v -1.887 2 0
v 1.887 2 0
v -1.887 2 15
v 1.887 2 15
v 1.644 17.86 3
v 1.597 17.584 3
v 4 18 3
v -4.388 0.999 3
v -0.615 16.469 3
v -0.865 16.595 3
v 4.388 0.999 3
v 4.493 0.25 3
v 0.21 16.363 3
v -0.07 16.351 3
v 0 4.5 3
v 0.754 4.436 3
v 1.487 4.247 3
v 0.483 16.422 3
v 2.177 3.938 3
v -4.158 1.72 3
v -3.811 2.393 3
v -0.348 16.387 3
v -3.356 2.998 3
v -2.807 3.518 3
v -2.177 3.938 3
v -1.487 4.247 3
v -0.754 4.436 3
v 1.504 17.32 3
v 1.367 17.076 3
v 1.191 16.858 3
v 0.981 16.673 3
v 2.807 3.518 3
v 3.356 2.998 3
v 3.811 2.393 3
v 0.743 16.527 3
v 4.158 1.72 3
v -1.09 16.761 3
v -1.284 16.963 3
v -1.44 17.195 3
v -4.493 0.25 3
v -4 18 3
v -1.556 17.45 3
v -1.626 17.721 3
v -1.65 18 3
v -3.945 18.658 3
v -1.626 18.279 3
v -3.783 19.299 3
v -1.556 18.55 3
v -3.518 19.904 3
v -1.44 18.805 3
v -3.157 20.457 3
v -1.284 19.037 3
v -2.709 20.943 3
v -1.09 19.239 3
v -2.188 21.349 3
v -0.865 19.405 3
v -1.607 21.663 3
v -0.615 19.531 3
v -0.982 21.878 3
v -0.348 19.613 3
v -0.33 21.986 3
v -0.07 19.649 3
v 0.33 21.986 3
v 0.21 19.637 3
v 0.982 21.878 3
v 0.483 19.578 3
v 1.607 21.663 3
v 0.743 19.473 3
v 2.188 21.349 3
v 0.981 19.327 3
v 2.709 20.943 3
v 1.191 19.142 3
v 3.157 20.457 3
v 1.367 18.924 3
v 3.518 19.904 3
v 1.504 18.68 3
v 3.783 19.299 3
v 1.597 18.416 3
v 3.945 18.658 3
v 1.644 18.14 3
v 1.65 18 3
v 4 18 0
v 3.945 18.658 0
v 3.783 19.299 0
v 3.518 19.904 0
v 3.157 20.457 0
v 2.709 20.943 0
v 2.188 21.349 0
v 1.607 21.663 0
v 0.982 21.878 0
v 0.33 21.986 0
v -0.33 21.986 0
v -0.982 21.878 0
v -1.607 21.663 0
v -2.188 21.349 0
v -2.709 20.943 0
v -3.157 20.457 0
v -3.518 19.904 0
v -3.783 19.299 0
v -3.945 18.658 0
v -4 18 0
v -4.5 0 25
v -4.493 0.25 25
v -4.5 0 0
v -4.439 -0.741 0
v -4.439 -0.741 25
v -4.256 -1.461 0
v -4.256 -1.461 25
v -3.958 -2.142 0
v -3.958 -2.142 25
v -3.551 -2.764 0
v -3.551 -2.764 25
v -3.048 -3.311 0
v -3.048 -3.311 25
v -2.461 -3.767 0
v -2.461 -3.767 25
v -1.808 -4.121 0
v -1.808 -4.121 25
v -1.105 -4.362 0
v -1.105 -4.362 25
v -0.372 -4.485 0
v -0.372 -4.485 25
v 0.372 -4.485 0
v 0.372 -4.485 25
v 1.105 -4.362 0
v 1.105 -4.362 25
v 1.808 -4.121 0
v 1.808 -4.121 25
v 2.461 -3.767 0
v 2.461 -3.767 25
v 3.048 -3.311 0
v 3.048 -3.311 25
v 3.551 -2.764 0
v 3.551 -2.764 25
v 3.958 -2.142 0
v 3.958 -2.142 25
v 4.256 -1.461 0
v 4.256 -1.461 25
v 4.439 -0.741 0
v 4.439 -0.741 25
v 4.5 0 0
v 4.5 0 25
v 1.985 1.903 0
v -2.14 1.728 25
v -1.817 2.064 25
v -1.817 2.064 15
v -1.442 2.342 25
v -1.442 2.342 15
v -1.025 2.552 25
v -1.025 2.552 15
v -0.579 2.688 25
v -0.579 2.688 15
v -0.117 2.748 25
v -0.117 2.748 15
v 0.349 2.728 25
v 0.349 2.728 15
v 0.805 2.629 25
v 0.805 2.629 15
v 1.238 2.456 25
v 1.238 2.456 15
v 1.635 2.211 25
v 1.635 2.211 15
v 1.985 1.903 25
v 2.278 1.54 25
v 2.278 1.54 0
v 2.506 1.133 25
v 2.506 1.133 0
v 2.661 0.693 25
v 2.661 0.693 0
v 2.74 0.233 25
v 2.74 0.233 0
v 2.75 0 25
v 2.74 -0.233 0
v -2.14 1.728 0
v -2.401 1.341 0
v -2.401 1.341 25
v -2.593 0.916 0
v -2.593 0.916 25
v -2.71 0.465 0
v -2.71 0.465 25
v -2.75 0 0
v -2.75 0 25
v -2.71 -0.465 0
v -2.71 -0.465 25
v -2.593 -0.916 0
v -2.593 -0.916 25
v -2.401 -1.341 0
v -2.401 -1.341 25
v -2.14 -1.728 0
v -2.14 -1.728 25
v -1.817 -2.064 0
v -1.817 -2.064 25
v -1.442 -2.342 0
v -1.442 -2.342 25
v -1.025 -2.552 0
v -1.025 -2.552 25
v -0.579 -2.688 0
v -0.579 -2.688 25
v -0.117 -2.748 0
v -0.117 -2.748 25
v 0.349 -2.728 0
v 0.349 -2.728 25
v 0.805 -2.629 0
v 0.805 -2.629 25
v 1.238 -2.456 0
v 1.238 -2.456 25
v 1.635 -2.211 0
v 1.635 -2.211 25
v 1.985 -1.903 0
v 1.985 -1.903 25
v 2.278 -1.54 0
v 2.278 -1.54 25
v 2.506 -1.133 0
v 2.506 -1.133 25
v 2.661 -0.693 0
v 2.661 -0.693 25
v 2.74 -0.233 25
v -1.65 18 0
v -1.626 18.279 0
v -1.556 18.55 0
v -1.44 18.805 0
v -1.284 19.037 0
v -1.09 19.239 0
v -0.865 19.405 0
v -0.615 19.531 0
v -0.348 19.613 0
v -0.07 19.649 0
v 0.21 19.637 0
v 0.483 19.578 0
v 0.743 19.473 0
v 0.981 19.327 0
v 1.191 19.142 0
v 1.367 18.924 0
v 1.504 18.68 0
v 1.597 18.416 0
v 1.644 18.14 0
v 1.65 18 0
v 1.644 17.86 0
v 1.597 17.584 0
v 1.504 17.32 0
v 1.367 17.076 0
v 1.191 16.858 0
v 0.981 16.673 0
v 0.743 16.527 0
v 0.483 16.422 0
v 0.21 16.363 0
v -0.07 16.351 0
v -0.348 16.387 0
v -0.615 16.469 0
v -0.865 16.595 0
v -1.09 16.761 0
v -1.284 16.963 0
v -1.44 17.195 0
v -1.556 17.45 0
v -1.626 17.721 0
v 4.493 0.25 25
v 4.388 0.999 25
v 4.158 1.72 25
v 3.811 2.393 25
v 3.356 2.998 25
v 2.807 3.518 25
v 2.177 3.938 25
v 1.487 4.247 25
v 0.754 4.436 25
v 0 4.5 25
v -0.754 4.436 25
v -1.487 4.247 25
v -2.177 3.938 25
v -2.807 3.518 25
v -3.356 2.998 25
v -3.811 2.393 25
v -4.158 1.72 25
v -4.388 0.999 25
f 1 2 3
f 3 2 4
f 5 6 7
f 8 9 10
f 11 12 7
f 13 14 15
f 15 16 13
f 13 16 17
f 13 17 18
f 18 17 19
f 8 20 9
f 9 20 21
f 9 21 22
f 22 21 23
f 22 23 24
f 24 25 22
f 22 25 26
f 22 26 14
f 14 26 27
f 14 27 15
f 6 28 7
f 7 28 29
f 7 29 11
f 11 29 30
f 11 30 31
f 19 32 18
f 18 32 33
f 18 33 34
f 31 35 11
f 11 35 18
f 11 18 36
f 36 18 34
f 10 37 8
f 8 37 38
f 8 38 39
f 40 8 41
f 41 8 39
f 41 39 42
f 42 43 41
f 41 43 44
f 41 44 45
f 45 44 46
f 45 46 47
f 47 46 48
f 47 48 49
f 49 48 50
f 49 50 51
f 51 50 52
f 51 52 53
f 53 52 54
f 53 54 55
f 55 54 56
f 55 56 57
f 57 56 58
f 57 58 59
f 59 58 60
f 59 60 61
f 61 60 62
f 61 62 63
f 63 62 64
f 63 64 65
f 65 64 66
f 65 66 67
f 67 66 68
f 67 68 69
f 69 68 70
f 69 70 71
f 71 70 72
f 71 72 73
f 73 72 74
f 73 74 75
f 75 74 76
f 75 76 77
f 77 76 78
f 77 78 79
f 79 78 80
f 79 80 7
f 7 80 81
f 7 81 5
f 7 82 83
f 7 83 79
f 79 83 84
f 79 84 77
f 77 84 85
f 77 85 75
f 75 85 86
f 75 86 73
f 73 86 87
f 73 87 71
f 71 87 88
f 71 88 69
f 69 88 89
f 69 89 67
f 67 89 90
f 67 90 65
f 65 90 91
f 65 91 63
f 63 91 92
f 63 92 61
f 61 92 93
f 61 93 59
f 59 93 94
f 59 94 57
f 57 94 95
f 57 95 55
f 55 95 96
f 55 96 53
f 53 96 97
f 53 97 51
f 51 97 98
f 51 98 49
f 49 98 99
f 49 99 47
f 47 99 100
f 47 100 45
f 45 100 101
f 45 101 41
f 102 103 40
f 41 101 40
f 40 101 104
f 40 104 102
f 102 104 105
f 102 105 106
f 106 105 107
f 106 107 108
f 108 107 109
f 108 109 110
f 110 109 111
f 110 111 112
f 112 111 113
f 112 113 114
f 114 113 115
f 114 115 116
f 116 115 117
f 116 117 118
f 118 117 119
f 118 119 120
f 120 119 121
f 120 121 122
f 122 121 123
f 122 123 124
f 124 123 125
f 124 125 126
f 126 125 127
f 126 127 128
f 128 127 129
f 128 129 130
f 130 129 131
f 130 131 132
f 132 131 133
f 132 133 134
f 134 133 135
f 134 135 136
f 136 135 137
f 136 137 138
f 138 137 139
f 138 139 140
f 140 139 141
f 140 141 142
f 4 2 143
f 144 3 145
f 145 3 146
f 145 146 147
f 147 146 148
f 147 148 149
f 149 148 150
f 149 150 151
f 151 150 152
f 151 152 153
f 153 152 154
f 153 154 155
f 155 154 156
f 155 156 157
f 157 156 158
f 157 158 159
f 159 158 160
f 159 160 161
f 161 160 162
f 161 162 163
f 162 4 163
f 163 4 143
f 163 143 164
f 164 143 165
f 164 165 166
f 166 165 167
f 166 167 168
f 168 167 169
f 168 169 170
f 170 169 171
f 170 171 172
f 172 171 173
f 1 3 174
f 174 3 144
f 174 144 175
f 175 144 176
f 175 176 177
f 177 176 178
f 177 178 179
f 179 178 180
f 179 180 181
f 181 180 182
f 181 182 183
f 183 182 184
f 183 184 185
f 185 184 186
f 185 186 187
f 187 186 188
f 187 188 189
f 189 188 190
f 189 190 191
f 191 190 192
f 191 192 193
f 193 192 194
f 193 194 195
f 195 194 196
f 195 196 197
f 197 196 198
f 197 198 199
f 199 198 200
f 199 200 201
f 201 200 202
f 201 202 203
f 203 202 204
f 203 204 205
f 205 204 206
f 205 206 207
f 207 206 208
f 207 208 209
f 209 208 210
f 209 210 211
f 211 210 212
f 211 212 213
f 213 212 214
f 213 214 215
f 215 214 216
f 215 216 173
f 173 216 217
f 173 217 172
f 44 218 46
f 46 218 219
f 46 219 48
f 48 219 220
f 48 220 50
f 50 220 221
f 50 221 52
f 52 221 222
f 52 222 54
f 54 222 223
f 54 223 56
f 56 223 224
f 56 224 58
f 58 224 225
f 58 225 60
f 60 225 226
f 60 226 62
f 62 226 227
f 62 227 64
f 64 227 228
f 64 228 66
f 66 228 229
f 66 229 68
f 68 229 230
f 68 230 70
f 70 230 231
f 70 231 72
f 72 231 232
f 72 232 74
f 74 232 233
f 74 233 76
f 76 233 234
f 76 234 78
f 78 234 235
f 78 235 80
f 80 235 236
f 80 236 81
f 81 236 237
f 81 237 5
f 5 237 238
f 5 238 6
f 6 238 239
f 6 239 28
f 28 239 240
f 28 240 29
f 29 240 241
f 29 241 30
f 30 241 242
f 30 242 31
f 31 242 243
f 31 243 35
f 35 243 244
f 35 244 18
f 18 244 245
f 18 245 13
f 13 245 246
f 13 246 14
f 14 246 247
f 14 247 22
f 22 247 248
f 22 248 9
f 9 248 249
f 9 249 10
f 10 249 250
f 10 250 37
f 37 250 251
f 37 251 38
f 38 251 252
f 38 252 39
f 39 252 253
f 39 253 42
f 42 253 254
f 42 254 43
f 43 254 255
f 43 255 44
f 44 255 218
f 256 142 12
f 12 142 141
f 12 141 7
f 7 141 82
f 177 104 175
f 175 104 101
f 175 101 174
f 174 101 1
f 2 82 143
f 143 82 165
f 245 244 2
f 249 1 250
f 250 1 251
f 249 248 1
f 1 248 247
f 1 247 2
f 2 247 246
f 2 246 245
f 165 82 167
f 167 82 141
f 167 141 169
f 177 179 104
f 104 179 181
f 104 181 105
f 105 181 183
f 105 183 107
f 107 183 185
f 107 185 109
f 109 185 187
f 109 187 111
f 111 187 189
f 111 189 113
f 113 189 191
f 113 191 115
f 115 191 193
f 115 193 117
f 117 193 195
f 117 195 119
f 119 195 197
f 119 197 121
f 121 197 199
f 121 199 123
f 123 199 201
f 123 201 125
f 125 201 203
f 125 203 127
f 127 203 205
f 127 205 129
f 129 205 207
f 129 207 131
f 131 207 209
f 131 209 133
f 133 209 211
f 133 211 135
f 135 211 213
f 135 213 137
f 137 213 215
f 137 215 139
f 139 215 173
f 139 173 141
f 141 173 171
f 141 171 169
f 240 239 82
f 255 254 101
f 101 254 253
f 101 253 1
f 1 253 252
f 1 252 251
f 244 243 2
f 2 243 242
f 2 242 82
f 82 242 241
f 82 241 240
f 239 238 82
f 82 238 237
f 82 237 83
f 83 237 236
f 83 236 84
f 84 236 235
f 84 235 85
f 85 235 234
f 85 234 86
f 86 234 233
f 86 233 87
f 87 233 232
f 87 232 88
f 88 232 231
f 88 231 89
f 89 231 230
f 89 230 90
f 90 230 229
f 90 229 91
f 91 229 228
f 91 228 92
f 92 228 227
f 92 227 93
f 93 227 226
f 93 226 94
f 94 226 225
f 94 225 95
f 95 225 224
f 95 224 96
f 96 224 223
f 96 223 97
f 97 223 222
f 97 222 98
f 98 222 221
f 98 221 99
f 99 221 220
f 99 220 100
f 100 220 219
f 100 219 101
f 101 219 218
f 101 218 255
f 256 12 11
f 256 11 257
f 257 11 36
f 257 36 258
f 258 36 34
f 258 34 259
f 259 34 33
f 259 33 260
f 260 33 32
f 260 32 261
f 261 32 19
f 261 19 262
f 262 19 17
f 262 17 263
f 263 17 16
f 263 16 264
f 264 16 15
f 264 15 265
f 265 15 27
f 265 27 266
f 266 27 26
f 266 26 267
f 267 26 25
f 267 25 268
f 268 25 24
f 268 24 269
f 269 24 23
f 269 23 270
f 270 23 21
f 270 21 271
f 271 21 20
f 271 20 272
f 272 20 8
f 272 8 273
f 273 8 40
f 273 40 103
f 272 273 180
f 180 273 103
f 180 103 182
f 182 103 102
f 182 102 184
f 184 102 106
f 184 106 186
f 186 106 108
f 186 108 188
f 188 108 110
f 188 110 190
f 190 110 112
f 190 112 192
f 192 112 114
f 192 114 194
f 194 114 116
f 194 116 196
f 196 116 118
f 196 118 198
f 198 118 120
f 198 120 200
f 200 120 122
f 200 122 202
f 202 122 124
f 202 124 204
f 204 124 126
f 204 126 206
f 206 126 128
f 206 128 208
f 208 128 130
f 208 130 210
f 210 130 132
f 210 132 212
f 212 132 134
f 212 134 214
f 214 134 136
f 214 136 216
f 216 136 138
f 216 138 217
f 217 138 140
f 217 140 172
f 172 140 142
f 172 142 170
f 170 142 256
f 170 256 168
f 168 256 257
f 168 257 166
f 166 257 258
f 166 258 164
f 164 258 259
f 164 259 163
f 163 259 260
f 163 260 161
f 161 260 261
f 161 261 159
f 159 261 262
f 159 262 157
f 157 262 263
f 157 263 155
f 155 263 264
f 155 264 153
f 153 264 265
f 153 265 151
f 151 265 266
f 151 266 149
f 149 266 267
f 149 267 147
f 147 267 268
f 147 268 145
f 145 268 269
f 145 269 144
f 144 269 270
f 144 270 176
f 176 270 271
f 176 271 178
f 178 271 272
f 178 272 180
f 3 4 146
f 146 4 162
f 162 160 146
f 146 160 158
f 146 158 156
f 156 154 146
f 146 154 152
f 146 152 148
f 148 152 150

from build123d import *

# Parameters (mm, degrees)
SKETCH_1_R          = 1.65
EXTRUDE_3_DEPTH     = 3
EXTRUDE_5_DEPTH     = 25
CUT_EXTRUDE_START   = 15
CUT_EXTRUDE_1_DEPTH = 10


with BuildPart() as part:
    # 草图1 → 凸台-拉伸3 (new body)
    with BuildSketch(Plane.XY):
        with BuildLine():
            ThreePointArc((-4.5, 0), (0, -4.5), (4.5, 0))
            Line((4.5, 0), (4, 18))
            ThreePointArc((4, 18), (0, 22), (-4, 18))
            Line((-4, 18), (-4.5, 0))
        make_face()
        with Locations((0, 18)):
            Circle(SKETCH_1_R, mode=Mode.SUBTRACT)
        with BuildLine():
            Line((-1.887458609, 2), (1.887458609, 2))
            ThreePointArc((1.887458609, 2), (0, -2.75), (-1.887458609, 2))
        make_face(mode=Mode.SUBTRACT)
    extrude(amount=EXTRUDE_3_DEPTH)

    # 草图1<12> → 凸台-拉伸5 (add)
    with BuildSketch(Plane.XY):
        with BuildLine():
            Line((-4.49306091, 0.249807247), (-4.5, 0))
            ThreePointArc((-4.5, 0), (0, -4.5), (4.5, 0))
            Line((4.5, 0), (4.49306091, 0.249807247))
            ThreePointArc((4.49306091, 0.249807247), (0, 4.5), (-4.49306091, 0.249807247))
        make_face()
        with BuildLine():
            Line((-1.887458609, 2), (1.887458609, 2))
            ThreePointArc((1.887458609, 2), (0, -2.75), (-1.887458609, 2))
        make_face(mode=Mode.SUBTRACT)
    extrude(amount=EXTRUDE_5_DEPTH)

    # 草图1<16> → 切除-拉伸1 (cut)
    with BuildSketch(Plane.XY.offset(CUT_EXTRUDE_START)):
        with BuildLine():
            ThreePointArc((0, 2.75), (-1.015504801, 2.555631038), (-1.887458609, 2))
            Line((-1.887458609, 2), (0, 2))
            Line((0, 2), (0, 2.75))
        make_face()
        with BuildLine():
            Line((0, 2), (-1.887458609, 2))
            ThreePointArc((-1.887458609, 2), (-2.555631038, -1.015504801), (0, -2.75))
            Line((0, -2.75), (0, 2))
        make_face()
        with BuildLine():
            Line((0, 2.75), (0, 2))
            Line((0, 2), (1.887458609, 2))
            ThreePointArc((1.887458609, 2), (1.015504801, 2.555631038), (0, 2.75))
        make_face()
        with BuildLine():
            Line((1.887458609, 2), (0, 2))
            Line((0, 2), (0, -2.75))
            ThreePointArc((0, -2.75), (1.944543648, -1.944543648), (2.75, 0))
            ThreePointArc((2.75, 0), (2.525174368, 1.089033706), (1.887458609, 2))
        make_face()
    extrude(amount=CUT_EXTRUDE_1_DEPTH, mode=Mode.SUBTRACT)


solid = part.part
